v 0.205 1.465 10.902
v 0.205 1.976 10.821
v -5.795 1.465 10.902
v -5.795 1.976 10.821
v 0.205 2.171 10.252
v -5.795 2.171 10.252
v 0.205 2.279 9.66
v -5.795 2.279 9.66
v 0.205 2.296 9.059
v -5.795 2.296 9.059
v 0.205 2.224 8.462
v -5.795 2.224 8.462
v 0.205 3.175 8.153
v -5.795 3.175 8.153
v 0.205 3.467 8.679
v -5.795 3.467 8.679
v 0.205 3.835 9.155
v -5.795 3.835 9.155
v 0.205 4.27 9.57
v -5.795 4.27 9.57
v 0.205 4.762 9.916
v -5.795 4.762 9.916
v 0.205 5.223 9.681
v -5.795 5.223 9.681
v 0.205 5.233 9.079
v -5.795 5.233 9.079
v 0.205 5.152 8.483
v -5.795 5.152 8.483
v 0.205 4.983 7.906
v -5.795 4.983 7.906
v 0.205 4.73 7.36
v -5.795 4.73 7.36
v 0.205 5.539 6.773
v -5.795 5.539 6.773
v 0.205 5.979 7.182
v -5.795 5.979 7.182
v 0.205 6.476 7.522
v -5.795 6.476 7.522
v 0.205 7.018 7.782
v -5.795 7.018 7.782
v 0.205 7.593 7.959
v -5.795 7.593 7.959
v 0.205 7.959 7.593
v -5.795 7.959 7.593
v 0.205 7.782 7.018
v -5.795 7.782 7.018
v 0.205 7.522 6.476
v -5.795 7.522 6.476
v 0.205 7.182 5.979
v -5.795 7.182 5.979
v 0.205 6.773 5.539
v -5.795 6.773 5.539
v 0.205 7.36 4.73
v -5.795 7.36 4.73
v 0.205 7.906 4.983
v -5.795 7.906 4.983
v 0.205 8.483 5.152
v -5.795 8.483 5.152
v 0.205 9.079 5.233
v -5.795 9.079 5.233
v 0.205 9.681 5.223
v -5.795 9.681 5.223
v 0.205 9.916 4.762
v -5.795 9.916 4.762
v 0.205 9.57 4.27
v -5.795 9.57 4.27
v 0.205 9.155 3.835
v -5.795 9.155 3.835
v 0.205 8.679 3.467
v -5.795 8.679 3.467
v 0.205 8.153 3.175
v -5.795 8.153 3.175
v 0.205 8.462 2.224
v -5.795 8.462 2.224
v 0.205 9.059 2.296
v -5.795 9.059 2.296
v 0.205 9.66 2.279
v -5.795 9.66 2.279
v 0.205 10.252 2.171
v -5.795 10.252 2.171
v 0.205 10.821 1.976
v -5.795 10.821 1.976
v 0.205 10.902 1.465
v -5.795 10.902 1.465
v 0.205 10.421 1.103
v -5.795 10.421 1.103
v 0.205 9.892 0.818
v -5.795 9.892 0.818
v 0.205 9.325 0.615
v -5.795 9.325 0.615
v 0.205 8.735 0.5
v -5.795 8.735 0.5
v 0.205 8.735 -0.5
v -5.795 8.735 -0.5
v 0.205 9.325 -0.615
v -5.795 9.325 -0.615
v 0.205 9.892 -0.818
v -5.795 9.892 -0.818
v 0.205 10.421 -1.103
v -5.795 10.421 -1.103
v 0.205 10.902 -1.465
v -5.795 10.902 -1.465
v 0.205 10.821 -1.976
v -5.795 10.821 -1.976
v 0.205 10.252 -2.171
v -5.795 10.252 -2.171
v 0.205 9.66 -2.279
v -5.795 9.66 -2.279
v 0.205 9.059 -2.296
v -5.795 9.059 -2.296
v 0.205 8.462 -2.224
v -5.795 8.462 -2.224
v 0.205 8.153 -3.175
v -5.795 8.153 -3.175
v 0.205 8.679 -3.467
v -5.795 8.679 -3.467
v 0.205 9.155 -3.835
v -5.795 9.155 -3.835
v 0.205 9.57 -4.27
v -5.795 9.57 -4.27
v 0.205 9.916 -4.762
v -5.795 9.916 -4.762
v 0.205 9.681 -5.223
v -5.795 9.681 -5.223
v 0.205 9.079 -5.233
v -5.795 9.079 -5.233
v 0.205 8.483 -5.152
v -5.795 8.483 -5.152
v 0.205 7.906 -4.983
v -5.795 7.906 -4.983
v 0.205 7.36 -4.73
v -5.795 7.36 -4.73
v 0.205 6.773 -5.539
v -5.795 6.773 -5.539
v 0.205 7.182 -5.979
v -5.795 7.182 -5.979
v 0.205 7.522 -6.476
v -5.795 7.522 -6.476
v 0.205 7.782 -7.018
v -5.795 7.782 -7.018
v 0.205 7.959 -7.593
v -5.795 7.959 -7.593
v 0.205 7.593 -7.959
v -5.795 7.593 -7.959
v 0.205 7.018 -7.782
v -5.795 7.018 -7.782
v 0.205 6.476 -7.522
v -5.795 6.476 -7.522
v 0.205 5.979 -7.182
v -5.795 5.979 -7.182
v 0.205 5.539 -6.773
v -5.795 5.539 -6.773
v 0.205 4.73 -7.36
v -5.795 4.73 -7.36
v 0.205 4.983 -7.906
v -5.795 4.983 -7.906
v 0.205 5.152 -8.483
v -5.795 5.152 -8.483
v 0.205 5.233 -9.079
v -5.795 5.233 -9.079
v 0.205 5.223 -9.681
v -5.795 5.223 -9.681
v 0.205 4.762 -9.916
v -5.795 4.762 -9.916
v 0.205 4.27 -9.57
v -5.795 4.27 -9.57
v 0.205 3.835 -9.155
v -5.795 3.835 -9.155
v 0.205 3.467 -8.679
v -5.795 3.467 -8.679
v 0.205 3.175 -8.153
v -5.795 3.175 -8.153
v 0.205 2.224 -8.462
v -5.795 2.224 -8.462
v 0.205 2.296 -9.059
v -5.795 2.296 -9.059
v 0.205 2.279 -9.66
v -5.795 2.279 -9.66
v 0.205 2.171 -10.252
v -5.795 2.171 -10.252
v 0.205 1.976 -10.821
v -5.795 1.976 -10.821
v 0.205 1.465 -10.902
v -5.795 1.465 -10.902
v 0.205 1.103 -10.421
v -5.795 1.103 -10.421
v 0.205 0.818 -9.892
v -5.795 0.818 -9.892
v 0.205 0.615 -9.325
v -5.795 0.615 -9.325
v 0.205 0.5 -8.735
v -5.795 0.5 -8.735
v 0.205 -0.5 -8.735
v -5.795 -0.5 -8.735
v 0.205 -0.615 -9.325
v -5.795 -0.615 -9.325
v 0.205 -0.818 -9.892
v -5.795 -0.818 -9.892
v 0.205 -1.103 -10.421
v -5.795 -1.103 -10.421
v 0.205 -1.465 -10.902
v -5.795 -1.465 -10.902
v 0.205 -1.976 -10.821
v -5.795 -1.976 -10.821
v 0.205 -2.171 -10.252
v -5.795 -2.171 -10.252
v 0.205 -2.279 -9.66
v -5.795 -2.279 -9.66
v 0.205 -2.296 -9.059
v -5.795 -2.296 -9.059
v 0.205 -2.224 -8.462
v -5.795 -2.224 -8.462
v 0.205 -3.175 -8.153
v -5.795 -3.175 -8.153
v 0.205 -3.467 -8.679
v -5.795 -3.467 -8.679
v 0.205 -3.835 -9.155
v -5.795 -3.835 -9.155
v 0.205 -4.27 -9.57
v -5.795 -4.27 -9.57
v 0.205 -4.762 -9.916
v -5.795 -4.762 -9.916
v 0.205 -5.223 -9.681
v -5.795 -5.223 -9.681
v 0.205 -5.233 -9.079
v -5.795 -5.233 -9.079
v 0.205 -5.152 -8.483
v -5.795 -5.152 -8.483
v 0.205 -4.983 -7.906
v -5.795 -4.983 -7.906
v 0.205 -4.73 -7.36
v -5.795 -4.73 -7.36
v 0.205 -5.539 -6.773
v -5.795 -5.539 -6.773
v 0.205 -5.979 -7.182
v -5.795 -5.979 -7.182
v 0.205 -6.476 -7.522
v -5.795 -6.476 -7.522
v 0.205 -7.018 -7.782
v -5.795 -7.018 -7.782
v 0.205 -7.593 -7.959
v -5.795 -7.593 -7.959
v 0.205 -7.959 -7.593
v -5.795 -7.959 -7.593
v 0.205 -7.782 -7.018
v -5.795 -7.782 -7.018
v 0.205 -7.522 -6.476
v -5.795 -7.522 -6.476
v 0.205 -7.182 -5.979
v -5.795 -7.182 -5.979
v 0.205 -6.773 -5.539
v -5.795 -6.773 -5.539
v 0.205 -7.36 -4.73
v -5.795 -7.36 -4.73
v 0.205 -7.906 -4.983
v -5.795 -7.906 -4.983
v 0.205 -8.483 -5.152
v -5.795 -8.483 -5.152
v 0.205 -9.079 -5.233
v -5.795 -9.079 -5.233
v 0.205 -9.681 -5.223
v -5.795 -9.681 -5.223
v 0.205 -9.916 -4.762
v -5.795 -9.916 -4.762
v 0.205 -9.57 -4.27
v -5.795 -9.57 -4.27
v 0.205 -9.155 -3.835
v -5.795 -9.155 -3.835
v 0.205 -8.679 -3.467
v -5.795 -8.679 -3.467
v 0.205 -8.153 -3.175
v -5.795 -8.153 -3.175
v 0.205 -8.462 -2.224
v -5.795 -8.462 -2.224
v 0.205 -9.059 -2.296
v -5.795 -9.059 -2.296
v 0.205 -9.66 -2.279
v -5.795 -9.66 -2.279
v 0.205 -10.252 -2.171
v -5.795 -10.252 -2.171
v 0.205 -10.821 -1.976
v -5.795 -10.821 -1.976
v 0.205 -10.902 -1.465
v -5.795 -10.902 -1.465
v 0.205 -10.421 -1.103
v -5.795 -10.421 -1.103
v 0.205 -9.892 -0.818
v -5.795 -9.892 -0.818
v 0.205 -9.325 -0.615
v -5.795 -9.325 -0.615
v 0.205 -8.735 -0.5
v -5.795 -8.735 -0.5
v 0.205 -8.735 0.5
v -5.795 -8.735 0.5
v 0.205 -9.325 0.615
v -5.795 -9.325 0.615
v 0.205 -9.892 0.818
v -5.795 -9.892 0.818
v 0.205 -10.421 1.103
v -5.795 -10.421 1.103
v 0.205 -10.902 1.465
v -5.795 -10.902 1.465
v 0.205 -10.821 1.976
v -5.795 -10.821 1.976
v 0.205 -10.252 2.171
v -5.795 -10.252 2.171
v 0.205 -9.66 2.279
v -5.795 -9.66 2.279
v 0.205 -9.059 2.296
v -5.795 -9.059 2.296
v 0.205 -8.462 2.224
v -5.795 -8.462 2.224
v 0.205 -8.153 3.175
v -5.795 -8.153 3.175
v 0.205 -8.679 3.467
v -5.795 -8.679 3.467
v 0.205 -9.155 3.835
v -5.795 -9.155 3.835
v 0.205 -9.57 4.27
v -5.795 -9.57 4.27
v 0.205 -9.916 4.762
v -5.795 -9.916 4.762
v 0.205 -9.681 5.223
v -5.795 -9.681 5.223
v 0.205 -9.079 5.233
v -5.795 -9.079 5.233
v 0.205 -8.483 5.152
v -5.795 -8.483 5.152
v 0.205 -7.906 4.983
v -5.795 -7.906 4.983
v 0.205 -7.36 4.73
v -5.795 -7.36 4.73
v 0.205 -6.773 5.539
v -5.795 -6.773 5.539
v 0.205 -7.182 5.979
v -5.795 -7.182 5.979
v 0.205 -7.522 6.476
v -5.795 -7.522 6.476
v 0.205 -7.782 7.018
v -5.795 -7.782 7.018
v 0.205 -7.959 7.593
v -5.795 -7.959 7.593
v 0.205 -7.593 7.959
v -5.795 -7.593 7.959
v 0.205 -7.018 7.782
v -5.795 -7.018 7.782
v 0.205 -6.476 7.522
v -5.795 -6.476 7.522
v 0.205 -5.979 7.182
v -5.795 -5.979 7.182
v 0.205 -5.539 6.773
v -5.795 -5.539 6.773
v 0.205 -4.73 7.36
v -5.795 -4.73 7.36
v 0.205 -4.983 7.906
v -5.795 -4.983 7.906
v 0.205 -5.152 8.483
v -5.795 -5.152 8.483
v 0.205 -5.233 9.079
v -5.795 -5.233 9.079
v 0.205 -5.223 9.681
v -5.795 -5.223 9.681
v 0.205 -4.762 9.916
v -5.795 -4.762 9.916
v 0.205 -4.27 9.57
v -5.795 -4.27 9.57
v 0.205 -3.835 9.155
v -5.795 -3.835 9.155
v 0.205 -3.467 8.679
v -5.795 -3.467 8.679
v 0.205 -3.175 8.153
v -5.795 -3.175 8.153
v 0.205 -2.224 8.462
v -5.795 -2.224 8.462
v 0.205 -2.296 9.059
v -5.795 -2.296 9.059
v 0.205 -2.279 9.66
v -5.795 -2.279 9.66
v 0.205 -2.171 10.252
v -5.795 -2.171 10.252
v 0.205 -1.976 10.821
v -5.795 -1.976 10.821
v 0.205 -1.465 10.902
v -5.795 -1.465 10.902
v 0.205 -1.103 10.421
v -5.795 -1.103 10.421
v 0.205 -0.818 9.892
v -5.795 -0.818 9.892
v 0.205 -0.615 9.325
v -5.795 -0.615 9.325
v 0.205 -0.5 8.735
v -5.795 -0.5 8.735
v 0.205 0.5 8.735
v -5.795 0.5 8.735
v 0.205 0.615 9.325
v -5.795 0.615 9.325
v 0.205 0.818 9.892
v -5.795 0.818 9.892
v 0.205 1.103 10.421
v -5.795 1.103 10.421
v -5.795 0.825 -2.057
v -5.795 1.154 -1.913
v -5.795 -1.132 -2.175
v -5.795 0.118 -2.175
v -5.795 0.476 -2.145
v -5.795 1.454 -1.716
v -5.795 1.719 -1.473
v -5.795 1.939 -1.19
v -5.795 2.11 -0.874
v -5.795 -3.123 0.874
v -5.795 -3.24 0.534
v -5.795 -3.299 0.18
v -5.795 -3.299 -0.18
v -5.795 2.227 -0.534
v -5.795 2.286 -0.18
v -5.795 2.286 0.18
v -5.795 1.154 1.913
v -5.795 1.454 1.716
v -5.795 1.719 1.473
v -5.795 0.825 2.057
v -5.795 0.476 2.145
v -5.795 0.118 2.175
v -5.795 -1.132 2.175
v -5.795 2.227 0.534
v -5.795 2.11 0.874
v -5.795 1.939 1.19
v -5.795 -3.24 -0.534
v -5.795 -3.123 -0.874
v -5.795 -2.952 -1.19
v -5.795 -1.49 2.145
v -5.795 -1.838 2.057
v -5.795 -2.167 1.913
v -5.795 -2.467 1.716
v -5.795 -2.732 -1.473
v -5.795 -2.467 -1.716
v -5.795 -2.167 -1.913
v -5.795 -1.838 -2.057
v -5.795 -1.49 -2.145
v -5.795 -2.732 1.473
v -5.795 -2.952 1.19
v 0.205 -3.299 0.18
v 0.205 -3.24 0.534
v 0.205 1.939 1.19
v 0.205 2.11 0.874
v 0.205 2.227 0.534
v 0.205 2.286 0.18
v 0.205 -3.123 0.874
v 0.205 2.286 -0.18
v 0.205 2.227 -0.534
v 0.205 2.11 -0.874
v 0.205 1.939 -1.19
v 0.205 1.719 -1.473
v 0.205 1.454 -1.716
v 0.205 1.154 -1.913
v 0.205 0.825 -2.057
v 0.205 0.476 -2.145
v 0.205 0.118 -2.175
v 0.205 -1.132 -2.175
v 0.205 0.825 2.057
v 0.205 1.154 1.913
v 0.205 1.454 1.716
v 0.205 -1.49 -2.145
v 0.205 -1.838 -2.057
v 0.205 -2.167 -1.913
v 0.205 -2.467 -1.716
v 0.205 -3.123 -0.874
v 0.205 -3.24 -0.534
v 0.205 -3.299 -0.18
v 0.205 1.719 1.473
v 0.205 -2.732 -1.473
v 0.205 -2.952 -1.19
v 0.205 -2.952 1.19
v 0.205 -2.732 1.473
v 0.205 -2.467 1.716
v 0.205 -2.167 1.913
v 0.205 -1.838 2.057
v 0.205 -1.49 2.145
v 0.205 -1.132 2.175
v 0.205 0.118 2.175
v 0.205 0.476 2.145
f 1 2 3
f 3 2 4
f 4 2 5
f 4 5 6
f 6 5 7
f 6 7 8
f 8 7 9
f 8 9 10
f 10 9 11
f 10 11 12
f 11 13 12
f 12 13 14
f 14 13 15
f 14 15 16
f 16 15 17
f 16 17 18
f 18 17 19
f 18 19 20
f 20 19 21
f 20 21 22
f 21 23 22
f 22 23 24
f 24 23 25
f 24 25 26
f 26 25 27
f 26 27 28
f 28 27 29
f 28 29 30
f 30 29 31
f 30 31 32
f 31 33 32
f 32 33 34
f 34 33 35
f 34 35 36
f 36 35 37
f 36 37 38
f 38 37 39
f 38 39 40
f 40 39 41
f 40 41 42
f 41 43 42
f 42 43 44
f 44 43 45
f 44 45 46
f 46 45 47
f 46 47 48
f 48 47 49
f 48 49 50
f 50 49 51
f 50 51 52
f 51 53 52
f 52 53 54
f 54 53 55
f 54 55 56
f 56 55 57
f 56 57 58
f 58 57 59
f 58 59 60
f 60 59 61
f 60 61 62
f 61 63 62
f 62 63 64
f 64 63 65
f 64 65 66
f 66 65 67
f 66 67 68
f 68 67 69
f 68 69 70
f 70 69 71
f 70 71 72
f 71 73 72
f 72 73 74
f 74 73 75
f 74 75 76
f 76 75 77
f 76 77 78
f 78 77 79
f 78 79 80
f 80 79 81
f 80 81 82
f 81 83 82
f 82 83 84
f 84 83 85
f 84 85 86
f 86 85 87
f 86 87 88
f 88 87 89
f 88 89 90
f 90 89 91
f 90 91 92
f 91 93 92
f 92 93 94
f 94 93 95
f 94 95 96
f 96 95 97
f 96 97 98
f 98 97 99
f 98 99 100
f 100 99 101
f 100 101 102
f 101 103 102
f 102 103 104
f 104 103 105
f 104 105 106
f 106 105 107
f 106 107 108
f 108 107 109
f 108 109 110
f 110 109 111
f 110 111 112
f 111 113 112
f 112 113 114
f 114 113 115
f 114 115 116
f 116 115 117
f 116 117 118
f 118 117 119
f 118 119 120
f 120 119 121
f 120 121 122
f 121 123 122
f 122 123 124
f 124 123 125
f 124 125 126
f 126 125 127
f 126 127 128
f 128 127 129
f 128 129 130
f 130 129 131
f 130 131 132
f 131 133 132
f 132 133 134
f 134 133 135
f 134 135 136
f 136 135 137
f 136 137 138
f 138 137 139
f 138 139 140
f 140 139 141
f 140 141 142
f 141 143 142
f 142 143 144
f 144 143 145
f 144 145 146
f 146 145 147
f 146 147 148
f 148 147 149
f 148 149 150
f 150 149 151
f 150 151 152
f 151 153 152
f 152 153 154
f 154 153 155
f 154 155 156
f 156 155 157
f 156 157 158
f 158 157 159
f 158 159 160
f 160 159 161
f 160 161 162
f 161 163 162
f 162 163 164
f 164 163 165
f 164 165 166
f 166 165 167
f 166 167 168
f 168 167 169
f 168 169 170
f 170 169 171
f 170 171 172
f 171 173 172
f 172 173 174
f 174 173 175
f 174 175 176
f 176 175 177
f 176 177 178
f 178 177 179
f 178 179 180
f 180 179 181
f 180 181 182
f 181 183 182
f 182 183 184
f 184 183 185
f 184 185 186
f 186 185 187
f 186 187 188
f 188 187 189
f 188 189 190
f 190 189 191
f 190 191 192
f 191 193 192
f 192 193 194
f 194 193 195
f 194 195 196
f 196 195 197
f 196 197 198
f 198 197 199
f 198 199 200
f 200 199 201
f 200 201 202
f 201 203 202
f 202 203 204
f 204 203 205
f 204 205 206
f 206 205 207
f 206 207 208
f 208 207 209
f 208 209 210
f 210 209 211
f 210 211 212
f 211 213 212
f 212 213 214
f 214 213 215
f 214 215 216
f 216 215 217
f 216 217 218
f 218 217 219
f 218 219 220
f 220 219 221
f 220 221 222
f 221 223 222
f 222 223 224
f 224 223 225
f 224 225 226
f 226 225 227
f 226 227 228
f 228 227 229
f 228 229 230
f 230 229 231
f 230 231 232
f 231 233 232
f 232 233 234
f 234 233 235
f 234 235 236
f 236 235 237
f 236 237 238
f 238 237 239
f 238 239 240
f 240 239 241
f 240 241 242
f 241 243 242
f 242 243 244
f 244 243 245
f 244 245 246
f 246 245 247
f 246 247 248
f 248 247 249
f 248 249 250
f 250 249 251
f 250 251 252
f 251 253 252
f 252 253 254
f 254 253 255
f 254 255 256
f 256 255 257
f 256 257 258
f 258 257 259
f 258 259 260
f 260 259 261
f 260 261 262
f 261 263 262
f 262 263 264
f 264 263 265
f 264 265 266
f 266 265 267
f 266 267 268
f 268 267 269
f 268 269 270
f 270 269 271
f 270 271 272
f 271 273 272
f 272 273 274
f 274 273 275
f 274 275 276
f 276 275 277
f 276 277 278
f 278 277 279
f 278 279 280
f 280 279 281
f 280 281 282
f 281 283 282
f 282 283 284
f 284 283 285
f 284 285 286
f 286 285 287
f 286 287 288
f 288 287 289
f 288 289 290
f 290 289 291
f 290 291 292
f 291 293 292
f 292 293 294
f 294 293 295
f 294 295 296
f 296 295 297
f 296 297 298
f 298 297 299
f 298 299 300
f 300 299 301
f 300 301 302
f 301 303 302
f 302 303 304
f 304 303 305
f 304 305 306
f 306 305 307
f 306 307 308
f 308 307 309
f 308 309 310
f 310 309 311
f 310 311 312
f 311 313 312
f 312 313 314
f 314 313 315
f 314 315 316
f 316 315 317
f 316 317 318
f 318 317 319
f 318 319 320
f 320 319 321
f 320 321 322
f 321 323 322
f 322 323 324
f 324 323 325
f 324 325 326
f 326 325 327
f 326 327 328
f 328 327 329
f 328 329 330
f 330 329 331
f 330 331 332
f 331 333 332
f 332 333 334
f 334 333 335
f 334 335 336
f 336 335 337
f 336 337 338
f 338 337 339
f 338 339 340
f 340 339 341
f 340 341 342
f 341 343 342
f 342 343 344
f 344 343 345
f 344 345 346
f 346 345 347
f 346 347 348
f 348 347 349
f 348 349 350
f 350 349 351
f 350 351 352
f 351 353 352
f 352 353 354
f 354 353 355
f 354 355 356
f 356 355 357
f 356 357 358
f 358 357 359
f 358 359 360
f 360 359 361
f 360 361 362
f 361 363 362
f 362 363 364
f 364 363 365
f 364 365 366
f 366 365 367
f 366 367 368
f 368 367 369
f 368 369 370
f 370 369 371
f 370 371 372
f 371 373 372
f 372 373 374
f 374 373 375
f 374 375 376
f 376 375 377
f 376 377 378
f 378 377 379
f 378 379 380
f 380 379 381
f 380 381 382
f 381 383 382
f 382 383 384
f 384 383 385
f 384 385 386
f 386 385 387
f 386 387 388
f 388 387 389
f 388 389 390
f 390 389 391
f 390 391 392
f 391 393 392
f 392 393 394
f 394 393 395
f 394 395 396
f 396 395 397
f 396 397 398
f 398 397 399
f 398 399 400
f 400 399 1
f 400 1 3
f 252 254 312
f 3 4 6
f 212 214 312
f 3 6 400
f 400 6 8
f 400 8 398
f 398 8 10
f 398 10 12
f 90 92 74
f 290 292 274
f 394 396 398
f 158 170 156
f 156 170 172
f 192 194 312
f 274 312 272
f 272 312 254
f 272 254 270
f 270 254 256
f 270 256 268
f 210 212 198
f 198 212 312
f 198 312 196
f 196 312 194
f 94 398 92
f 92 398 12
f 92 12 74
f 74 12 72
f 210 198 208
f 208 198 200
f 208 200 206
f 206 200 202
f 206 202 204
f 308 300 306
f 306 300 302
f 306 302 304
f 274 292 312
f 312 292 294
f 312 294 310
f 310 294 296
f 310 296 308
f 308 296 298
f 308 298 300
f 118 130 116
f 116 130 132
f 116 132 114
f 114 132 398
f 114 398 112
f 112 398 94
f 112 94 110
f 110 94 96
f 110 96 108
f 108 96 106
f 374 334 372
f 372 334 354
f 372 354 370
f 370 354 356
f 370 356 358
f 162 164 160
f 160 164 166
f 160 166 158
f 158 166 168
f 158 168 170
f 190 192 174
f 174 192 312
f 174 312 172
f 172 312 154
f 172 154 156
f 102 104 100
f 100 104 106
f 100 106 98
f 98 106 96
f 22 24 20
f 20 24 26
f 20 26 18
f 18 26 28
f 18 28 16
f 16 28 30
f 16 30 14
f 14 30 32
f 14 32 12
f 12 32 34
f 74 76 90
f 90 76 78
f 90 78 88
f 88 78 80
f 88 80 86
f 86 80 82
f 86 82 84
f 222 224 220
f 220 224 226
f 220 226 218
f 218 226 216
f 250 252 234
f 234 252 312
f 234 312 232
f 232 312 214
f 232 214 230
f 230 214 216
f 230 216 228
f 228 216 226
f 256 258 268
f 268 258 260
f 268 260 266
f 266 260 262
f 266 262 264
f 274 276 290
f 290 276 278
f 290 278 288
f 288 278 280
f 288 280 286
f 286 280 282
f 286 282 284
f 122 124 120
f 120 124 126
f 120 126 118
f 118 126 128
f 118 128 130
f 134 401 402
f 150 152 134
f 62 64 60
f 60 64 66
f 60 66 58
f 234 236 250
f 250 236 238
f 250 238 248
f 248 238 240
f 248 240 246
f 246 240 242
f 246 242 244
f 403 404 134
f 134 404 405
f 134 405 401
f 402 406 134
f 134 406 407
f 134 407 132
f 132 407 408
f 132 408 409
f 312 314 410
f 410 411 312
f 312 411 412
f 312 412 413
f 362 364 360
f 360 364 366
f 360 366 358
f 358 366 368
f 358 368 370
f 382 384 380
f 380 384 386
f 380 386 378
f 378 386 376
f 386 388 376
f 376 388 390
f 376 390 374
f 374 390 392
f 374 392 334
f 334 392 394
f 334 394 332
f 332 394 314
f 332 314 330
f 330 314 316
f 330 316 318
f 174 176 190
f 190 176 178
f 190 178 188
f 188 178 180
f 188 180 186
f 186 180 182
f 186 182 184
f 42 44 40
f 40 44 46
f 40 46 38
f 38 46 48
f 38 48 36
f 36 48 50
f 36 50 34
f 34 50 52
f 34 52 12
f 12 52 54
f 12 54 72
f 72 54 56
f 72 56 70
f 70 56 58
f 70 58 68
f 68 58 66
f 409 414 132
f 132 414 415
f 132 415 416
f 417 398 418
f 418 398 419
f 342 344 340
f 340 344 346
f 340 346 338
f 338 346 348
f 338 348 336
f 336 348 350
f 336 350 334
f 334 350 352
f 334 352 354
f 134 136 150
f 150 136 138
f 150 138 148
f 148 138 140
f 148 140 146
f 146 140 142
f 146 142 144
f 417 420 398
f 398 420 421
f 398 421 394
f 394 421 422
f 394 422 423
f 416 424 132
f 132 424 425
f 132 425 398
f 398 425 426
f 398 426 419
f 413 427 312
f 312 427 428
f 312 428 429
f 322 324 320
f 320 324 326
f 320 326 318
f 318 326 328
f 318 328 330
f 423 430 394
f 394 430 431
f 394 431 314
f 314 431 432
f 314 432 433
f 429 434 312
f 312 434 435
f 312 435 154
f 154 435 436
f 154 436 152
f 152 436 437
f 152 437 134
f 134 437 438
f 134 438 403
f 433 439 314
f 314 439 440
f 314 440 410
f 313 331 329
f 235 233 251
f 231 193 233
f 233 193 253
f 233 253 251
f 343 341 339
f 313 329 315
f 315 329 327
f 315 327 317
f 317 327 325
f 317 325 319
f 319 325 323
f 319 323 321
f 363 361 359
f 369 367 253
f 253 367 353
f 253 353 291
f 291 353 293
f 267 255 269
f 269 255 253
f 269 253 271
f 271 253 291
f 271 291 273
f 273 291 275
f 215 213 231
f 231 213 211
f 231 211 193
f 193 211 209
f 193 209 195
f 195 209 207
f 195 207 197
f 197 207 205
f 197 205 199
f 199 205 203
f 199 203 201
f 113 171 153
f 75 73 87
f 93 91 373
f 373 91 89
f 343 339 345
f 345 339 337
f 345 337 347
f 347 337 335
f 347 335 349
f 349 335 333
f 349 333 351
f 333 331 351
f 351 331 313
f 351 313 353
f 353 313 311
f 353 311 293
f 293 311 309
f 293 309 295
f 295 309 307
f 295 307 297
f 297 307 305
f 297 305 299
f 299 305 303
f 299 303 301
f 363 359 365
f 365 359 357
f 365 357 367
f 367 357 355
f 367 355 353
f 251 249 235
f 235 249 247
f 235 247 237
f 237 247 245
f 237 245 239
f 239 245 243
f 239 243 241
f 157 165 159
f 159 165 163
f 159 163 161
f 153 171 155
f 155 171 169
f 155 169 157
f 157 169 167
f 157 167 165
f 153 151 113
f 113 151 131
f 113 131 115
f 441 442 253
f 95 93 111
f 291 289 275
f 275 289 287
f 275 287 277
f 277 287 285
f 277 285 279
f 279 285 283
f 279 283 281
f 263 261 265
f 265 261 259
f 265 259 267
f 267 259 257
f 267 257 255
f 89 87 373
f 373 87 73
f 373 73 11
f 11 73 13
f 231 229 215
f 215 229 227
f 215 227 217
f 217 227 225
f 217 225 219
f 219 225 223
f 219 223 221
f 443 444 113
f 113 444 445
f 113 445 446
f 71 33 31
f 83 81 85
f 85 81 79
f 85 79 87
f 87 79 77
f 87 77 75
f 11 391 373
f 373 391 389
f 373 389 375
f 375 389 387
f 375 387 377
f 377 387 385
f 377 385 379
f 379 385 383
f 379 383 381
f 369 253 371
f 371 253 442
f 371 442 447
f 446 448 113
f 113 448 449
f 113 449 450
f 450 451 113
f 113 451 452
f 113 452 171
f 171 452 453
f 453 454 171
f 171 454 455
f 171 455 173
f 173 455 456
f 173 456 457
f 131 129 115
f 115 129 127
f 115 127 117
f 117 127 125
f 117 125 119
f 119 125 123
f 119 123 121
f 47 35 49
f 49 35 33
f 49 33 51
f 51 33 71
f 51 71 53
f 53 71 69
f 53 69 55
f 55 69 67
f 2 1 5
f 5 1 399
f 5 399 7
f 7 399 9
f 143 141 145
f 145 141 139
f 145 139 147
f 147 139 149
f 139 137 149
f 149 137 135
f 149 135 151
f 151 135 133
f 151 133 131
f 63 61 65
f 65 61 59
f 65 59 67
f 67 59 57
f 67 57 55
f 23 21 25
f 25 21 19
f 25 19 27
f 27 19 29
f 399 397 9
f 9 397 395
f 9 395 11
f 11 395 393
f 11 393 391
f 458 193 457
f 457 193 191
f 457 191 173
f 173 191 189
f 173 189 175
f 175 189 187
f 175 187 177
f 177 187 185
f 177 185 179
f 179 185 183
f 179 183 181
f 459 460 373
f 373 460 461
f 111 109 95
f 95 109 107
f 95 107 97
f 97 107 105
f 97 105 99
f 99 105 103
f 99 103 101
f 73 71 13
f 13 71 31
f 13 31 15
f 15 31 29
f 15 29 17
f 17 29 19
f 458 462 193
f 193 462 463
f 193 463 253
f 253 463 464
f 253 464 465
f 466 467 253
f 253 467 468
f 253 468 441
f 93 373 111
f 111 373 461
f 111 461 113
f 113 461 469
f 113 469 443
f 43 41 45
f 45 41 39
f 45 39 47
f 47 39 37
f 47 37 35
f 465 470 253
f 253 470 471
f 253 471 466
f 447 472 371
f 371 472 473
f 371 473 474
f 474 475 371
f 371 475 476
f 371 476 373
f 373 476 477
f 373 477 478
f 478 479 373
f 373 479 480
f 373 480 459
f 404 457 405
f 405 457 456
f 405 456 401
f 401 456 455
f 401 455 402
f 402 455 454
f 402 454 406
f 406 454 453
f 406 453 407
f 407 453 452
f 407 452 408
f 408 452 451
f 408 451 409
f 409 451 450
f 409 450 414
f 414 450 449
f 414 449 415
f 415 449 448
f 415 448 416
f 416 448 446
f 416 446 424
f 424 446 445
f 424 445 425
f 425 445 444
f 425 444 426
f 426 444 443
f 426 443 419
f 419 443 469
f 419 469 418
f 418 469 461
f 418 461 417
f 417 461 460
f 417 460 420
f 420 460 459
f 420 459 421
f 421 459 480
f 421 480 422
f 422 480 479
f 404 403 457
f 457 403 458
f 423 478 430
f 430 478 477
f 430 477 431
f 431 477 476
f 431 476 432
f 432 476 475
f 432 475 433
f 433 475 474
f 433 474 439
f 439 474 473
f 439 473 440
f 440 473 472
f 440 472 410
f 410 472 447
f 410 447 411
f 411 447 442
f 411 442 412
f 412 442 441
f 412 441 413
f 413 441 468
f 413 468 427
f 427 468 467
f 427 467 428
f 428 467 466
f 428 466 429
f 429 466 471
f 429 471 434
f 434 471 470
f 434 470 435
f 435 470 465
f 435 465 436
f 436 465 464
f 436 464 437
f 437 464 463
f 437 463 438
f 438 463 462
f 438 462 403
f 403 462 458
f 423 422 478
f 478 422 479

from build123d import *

# Parameters (mm, degrees)
EXTRUDE_1_DEPTH = 6


with BuildPart() as part:
    # Эскиз1 → Бобышка-Вытянуть1 (new body)
    with BuildSketch(Plane(origin=(0.204923016, 3.152126199, 1.20502958), x_dir=(0, 0, -1), z_dir=(1, 0, 0))):
        with BuildLine():
            ThreePointArc((-9.696984117, -1.687169764), (-8.686522764, -2.334065374), (-7.529675738, -2.652202191))
            ThreePointArc((-7.529675738, -2.652202191), (-7.54397042, -3.152126199), (-7.529675738, -3.652050206))
            ThreePointArc((-7.529675738, -3.652050206), (-8.686522764, -3.970187024), (-9.696984117, -4.617082634))
            ThreePointArc((-9.696984117, -4.617082634), (-9.659542166, -4.872905314), (-9.616098021, -5.12777734))
            ThreePointArc((-9.616098021, -5.12777734), (-8.45519043, -5.430761896), (-7.256653844, -5.375842598))
            ThreePointArc((-7.256653844, -5.375842598), (-7.115763881, -5.855715883), (-6.947683816, -6.326754568))
            ThreePointArc((-6.947683816, -6.326754568), (-7.949601035, -6.986806052), (-8.710705152, -7.914290068))
            ThreePointArc((-8.710705152, -7.914290068), (-8.596042186, -8.146021696), (-8.475964561, -8.374994418))
            ThreePointArc((-8.475964561, -8.374994418), (-7.278248455, -8.304409679), (-6.155343422, -7.88181015))
            ThreePointArc((-6.155343422, -7.88181015), (-5.873060104, -8.294659371), (-5.567647504, -8.690704186))
            ThreePointArc((-5.567647504, -8.690704186), (-6.316560278, -9.628059899), (-6.753804986, -10.745343722))
            ThreePointArc((-6.753804986, -10.745343722), (-6.573145013, -10.930300792), (-6.388187943, -11.110960765))
            ThreePointArc((-6.388187943, -11.110960765), (-5.27090412, -10.673716057), (-4.333548407, -9.924803283))
            ThreePointArc((-4.333548407, -9.924803283), (-3.937503592, -10.230215883), (-3.524654371, -10.512499201))
            ThreePointArc((-3.524654371, -10.512499201), (-3.9472539, -11.635404234), (-4.017838639, -12.83312034))
            ThreePointArc((-4.017838639, -12.83312034), (-3.788865917, -12.953197965), (-3.557134289, -13.067860931))
            ThreePointArc((-3.557134289, -13.067860931), (-2.629650273, -12.306756814), (-1.969598789, -11.304839595))
            ThreePointArc((-1.969598789, -11.304839595), (-1.498560104, -11.47291966), (-1.018686819, -11.613809623))
            ThreePointArc((-1.018686819, -11.613809623), (-1.073606117, -12.812346209), (-0.770621561, -13.9732538))
            ThreePointArc((-0.770621561, -13.9732538), (-0.515749535, -14.016697945), (-0.259926855, -14.054139896))
            ThreePointArc((-0.259926855, -14.054139896), (0.386968755, -13.043678543), (0.705105573, -11.886831517))
            ThreePointArc((0.705105573, -11.886831517), (1.20502958, -11.901126199), (1.704953588, -11.886831517))
            ThreePointArc((1.704953588, -11.886831517), (2.023090405, -13.043678543), (2.669986015, -14.054139896))
            ThreePointArc((2.669986015, -14.054139896), (2.925808695, -14.016697945), (3.180680722, -13.9732538))
            ThreePointArc((3.180680722, -13.9732538), (3.483665277, -12.812346209), (3.428745979, -11.613809623))
            ThreePointArc((3.428745979, -11.613809623), (3.908619264, -11.47291966), (4.379657949, -11.304839595))
            ThreePointArc((4.379657949, -11.304839595), (5.039709433, -12.306756814), (5.967193449, -13.067860931))
            ThreePointArc((5.967193449, -13.067860931), (6.198925077, -12.953197965), (6.427897799, -12.83312034))
            ThreePointArc((6.427897799, -12.83312034), (6.35731306, -11.635404234), (5.934713531, -10.512499201))
            ThreePointArc((5.934713531, -10.512499201), (6.347562752, -10.230215883), (6.743607567, -9.924803283))
            ThreePointArc((6.743607567, -9.924803283), (7.68096328, -10.673716057), (8.798247103, -11.110960765))
            ThreePointArc((8.798247103, -11.110960765), (8.983204173, -10.930300792), (9.163864146, -10.745343722))
            ThreePointArc((9.163864146, -10.745343722), (8.726619438, -9.628059899), (7.977706664, -8.690704186))
            ThreePointArc((7.977706664, -8.690704186), (8.283119264, -8.294659371), (8.565402582, -7.88181015))
            ThreePointArc((8.565402582, -7.88181015), (9.688307615, -8.304409679), (10.886023721, -8.374994418))
            ThreePointArc((10.886023721, -8.374994418), (11.006101346, -8.146021696), (11.120764313, -7.914290068))
            ThreePointArc((11.120764313, -7.914290068), (10.359660195, -6.986806052), (9.357742976, -6.326754568))
            ThreePointArc((9.357742976, -6.326754568), (9.525823041, -5.855715883), (9.666713005, -5.375842598))
            ThreePointArc((9.666713005, -5.375842598), (10.86524959, -5.430761896), (12.026157182, -5.12777734))
            ThreePointArc((12.026157182, -5.12777734), (12.069601327, -4.872905314), (12.107043277, -4.617082634))
            ThreePointArc((12.107043277, -4.617082634), (11.096581924, -3.970187024), (9.939734898, -3.652050206))
            ThreePointArc((9.939734898, -3.652050206), (9.95402958, -3.152126199), (9.939734898, -2.652202191))
            ThreePointArc((9.939734898, -2.652202191), (11.096581924, -2.334065374), (12.107043277, -1.687169764))
            ThreePointArc((12.107043277, -1.687169764), (12.069601327, -1.431347083), (12.026157182, -1.176475057))
            ThreePointArc((12.026157182, -1.176475057), (10.86524959, -0.873490502), (9.666713005, -0.9284098))
            ThreePointArc((9.666713005, -0.9284098), (9.525823041, -0.448536515), (9.357742976, 0.02250217))
            ThreePointArc((9.357742976, 0.02250217), (10.359660195, 0.682553654), (11.120764313, 1.61003767))
            ThreePointArc((11.120764313, 1.61003767), (11.006101346, 1.841769298), (10.886023721, 2.07074202))
            ThreePointArc((10.886023721, 2.07074202), (9.688307615, 2.000157281), (8.565402582, 1.577557752))
            ThreePointArc((8.565402582, 1.577557752), (8.283119264, 1.990406973), (7.977706664, 2.386451788))
            ThreePointArc((7.977706664, 2.386451788), (8.726619438, 3.323807501), (9.163864146, 4.441091324))
            ThreePointArc((9.163864146, 4.441091324), (8.983204173, 4.626048394), (8.798247103, 4.806708367))
            ThreePointArc((8.798247103, 4.806708367), (7.68096328, 4.369463659), (6.743607567, 3.620550885))
            ThreePointArc((6.743607567, 3.620550885), (6.347562752, 3.925963485), (5.934713531, 4.208246803))
            ThreePointArc((5.934713531, 4.208246803), (6.35731306, 5.331151836), (6.427897799, 6.528867942))
            ThreePointArc((6.427897799, 6.528867942), (6.198925077, 6.648945567), (5.967193449, 6.763608534))
            ThreePointArc((5.967193449, 6.763608534), (5.039709433, 6.002504416), (4.379657949, 5.000587197))
            ThreePointArc((4.379657949, 5.000587197), (3.908619264, 5.168667262), (3.428745979, 5.309557226))
            ThreePointArc((3.428745979, 5.309557226), (3.483665277, 6.508093811), (3.180680722, 7.669001403))
            ThreePointArc((3.180680722, 7.669001403), (2.925808695, 7.712445548), (2.669986015, 7.749887498))
            ThreePointArc((2.669986015, 7.749887498), (2.023090405, 6.739426145), (1.704953588, 5.582579119))
            ThreePointArc((1.704953588, 5.582579119), (1.20502958, 5.596873801), (0.705105573, 5.582579119))
            ThreePointArc((0.705105573, 5.582579119), (0.386968755, 6.739426145), (-0.259926855, 7.749887498))
            ThreePointArc((-0.259926855, 7.749887498), (-0.515749535, 7.712445548), (-0.770621561, 7.669001403))
            ThreePointArc((-0.770621561, 7.669001403), (-1.073606117, 6.508093811), (-1.018686819, 5.309557226))
            ThreePointArc((-1.018686819, 5.309557226), (-1.498560104, 5.168667262), (-1.969598789, 5.000587197))
            ThreePointArc((-1.969598789, 5.000587197), (-2.629650273, 6.002504416), (-3.557134289, 6.763608534))
            ThreePointArc((-3.557134289, 6.763608534), (-3.788865917, 6.648945567), (-4.017838639, 6.528867942))
            ThreePointArc((-4.017838639, 6.528867942), (-3.9472539, 5.331151836), (-3.524654371, 4.208246803))
            ThreePointArc((-3.524654371, 4.208246803), (-3.937503592, 3.925963485), (-4.333548407, 3.620550885))
            ThreePointArc((-4.333548407, 3.620550885), (-5.27090412, 4.369463659), (-6.388187943, 4.806708367))
            ThreePointArc((-6.388187943, 4.806708367), (-6.573145013, 4.626048394), (-6.753804986, 4.441091324))
            ThreePointArc((-6.753804986, 4.441091324), (-6.316560278, 3.323807501), (-5.567647504, 2.386451788))
            ThreePointArc((-5.567647504, 2.386451788), (-5.873060104, 1.990406973), (-6.155343422, 1.577557752))
            ThreePointArc((-6.155343422, 1.577557752), (-7.278248455, 2.000157281), (-8.475964561, 2.07074202))
            ThreePointArc((-8.475964561, 2.07074202), (-8.596042186, 1.841769298), (-8.710705152, 1.61003767))
            ThreePointArc((-8.710705152, 1.61003767), (-7.949601035, 0.682553654), (-6.947683816, 0.02250217))
            ThreePointArc((-6.947683816, 0.02250217), (-7.115763881, -0.448536515), (-7.256653844, -0.9284098))
            ThreePointArc((-7.256653844, -0.9284098), (-8.45519043, -0.873490502), (-9.616098021, -1.176475057))
            ThreePointArc((-9.616098021, -1.176475057), (-9.659542166, -1.431347083), (-9.696984117, -1.687169764))
        make_face()
        with BuildLine():
            Line((3.38002958, -3.033706418), (3.38002958, -4.283706418))
            ThreePointArc((3.38002958, -4.283706418), (1.20502958, -6.458706418), (-0.96997042, -4.283706418))
            Line((-0.96997042, -4.283706418), (-0.96997042, -3.033706418))
            ThreePointArc((-0.96997042, -3.033706418), (1.20502958, -0.858706418), (3.38002958, -3.033706418))
        make_face(mode=Mode.SUBTRACT)
    extrude(amount=-EXTRUDE_1_DEPTH)


solid = part.part
